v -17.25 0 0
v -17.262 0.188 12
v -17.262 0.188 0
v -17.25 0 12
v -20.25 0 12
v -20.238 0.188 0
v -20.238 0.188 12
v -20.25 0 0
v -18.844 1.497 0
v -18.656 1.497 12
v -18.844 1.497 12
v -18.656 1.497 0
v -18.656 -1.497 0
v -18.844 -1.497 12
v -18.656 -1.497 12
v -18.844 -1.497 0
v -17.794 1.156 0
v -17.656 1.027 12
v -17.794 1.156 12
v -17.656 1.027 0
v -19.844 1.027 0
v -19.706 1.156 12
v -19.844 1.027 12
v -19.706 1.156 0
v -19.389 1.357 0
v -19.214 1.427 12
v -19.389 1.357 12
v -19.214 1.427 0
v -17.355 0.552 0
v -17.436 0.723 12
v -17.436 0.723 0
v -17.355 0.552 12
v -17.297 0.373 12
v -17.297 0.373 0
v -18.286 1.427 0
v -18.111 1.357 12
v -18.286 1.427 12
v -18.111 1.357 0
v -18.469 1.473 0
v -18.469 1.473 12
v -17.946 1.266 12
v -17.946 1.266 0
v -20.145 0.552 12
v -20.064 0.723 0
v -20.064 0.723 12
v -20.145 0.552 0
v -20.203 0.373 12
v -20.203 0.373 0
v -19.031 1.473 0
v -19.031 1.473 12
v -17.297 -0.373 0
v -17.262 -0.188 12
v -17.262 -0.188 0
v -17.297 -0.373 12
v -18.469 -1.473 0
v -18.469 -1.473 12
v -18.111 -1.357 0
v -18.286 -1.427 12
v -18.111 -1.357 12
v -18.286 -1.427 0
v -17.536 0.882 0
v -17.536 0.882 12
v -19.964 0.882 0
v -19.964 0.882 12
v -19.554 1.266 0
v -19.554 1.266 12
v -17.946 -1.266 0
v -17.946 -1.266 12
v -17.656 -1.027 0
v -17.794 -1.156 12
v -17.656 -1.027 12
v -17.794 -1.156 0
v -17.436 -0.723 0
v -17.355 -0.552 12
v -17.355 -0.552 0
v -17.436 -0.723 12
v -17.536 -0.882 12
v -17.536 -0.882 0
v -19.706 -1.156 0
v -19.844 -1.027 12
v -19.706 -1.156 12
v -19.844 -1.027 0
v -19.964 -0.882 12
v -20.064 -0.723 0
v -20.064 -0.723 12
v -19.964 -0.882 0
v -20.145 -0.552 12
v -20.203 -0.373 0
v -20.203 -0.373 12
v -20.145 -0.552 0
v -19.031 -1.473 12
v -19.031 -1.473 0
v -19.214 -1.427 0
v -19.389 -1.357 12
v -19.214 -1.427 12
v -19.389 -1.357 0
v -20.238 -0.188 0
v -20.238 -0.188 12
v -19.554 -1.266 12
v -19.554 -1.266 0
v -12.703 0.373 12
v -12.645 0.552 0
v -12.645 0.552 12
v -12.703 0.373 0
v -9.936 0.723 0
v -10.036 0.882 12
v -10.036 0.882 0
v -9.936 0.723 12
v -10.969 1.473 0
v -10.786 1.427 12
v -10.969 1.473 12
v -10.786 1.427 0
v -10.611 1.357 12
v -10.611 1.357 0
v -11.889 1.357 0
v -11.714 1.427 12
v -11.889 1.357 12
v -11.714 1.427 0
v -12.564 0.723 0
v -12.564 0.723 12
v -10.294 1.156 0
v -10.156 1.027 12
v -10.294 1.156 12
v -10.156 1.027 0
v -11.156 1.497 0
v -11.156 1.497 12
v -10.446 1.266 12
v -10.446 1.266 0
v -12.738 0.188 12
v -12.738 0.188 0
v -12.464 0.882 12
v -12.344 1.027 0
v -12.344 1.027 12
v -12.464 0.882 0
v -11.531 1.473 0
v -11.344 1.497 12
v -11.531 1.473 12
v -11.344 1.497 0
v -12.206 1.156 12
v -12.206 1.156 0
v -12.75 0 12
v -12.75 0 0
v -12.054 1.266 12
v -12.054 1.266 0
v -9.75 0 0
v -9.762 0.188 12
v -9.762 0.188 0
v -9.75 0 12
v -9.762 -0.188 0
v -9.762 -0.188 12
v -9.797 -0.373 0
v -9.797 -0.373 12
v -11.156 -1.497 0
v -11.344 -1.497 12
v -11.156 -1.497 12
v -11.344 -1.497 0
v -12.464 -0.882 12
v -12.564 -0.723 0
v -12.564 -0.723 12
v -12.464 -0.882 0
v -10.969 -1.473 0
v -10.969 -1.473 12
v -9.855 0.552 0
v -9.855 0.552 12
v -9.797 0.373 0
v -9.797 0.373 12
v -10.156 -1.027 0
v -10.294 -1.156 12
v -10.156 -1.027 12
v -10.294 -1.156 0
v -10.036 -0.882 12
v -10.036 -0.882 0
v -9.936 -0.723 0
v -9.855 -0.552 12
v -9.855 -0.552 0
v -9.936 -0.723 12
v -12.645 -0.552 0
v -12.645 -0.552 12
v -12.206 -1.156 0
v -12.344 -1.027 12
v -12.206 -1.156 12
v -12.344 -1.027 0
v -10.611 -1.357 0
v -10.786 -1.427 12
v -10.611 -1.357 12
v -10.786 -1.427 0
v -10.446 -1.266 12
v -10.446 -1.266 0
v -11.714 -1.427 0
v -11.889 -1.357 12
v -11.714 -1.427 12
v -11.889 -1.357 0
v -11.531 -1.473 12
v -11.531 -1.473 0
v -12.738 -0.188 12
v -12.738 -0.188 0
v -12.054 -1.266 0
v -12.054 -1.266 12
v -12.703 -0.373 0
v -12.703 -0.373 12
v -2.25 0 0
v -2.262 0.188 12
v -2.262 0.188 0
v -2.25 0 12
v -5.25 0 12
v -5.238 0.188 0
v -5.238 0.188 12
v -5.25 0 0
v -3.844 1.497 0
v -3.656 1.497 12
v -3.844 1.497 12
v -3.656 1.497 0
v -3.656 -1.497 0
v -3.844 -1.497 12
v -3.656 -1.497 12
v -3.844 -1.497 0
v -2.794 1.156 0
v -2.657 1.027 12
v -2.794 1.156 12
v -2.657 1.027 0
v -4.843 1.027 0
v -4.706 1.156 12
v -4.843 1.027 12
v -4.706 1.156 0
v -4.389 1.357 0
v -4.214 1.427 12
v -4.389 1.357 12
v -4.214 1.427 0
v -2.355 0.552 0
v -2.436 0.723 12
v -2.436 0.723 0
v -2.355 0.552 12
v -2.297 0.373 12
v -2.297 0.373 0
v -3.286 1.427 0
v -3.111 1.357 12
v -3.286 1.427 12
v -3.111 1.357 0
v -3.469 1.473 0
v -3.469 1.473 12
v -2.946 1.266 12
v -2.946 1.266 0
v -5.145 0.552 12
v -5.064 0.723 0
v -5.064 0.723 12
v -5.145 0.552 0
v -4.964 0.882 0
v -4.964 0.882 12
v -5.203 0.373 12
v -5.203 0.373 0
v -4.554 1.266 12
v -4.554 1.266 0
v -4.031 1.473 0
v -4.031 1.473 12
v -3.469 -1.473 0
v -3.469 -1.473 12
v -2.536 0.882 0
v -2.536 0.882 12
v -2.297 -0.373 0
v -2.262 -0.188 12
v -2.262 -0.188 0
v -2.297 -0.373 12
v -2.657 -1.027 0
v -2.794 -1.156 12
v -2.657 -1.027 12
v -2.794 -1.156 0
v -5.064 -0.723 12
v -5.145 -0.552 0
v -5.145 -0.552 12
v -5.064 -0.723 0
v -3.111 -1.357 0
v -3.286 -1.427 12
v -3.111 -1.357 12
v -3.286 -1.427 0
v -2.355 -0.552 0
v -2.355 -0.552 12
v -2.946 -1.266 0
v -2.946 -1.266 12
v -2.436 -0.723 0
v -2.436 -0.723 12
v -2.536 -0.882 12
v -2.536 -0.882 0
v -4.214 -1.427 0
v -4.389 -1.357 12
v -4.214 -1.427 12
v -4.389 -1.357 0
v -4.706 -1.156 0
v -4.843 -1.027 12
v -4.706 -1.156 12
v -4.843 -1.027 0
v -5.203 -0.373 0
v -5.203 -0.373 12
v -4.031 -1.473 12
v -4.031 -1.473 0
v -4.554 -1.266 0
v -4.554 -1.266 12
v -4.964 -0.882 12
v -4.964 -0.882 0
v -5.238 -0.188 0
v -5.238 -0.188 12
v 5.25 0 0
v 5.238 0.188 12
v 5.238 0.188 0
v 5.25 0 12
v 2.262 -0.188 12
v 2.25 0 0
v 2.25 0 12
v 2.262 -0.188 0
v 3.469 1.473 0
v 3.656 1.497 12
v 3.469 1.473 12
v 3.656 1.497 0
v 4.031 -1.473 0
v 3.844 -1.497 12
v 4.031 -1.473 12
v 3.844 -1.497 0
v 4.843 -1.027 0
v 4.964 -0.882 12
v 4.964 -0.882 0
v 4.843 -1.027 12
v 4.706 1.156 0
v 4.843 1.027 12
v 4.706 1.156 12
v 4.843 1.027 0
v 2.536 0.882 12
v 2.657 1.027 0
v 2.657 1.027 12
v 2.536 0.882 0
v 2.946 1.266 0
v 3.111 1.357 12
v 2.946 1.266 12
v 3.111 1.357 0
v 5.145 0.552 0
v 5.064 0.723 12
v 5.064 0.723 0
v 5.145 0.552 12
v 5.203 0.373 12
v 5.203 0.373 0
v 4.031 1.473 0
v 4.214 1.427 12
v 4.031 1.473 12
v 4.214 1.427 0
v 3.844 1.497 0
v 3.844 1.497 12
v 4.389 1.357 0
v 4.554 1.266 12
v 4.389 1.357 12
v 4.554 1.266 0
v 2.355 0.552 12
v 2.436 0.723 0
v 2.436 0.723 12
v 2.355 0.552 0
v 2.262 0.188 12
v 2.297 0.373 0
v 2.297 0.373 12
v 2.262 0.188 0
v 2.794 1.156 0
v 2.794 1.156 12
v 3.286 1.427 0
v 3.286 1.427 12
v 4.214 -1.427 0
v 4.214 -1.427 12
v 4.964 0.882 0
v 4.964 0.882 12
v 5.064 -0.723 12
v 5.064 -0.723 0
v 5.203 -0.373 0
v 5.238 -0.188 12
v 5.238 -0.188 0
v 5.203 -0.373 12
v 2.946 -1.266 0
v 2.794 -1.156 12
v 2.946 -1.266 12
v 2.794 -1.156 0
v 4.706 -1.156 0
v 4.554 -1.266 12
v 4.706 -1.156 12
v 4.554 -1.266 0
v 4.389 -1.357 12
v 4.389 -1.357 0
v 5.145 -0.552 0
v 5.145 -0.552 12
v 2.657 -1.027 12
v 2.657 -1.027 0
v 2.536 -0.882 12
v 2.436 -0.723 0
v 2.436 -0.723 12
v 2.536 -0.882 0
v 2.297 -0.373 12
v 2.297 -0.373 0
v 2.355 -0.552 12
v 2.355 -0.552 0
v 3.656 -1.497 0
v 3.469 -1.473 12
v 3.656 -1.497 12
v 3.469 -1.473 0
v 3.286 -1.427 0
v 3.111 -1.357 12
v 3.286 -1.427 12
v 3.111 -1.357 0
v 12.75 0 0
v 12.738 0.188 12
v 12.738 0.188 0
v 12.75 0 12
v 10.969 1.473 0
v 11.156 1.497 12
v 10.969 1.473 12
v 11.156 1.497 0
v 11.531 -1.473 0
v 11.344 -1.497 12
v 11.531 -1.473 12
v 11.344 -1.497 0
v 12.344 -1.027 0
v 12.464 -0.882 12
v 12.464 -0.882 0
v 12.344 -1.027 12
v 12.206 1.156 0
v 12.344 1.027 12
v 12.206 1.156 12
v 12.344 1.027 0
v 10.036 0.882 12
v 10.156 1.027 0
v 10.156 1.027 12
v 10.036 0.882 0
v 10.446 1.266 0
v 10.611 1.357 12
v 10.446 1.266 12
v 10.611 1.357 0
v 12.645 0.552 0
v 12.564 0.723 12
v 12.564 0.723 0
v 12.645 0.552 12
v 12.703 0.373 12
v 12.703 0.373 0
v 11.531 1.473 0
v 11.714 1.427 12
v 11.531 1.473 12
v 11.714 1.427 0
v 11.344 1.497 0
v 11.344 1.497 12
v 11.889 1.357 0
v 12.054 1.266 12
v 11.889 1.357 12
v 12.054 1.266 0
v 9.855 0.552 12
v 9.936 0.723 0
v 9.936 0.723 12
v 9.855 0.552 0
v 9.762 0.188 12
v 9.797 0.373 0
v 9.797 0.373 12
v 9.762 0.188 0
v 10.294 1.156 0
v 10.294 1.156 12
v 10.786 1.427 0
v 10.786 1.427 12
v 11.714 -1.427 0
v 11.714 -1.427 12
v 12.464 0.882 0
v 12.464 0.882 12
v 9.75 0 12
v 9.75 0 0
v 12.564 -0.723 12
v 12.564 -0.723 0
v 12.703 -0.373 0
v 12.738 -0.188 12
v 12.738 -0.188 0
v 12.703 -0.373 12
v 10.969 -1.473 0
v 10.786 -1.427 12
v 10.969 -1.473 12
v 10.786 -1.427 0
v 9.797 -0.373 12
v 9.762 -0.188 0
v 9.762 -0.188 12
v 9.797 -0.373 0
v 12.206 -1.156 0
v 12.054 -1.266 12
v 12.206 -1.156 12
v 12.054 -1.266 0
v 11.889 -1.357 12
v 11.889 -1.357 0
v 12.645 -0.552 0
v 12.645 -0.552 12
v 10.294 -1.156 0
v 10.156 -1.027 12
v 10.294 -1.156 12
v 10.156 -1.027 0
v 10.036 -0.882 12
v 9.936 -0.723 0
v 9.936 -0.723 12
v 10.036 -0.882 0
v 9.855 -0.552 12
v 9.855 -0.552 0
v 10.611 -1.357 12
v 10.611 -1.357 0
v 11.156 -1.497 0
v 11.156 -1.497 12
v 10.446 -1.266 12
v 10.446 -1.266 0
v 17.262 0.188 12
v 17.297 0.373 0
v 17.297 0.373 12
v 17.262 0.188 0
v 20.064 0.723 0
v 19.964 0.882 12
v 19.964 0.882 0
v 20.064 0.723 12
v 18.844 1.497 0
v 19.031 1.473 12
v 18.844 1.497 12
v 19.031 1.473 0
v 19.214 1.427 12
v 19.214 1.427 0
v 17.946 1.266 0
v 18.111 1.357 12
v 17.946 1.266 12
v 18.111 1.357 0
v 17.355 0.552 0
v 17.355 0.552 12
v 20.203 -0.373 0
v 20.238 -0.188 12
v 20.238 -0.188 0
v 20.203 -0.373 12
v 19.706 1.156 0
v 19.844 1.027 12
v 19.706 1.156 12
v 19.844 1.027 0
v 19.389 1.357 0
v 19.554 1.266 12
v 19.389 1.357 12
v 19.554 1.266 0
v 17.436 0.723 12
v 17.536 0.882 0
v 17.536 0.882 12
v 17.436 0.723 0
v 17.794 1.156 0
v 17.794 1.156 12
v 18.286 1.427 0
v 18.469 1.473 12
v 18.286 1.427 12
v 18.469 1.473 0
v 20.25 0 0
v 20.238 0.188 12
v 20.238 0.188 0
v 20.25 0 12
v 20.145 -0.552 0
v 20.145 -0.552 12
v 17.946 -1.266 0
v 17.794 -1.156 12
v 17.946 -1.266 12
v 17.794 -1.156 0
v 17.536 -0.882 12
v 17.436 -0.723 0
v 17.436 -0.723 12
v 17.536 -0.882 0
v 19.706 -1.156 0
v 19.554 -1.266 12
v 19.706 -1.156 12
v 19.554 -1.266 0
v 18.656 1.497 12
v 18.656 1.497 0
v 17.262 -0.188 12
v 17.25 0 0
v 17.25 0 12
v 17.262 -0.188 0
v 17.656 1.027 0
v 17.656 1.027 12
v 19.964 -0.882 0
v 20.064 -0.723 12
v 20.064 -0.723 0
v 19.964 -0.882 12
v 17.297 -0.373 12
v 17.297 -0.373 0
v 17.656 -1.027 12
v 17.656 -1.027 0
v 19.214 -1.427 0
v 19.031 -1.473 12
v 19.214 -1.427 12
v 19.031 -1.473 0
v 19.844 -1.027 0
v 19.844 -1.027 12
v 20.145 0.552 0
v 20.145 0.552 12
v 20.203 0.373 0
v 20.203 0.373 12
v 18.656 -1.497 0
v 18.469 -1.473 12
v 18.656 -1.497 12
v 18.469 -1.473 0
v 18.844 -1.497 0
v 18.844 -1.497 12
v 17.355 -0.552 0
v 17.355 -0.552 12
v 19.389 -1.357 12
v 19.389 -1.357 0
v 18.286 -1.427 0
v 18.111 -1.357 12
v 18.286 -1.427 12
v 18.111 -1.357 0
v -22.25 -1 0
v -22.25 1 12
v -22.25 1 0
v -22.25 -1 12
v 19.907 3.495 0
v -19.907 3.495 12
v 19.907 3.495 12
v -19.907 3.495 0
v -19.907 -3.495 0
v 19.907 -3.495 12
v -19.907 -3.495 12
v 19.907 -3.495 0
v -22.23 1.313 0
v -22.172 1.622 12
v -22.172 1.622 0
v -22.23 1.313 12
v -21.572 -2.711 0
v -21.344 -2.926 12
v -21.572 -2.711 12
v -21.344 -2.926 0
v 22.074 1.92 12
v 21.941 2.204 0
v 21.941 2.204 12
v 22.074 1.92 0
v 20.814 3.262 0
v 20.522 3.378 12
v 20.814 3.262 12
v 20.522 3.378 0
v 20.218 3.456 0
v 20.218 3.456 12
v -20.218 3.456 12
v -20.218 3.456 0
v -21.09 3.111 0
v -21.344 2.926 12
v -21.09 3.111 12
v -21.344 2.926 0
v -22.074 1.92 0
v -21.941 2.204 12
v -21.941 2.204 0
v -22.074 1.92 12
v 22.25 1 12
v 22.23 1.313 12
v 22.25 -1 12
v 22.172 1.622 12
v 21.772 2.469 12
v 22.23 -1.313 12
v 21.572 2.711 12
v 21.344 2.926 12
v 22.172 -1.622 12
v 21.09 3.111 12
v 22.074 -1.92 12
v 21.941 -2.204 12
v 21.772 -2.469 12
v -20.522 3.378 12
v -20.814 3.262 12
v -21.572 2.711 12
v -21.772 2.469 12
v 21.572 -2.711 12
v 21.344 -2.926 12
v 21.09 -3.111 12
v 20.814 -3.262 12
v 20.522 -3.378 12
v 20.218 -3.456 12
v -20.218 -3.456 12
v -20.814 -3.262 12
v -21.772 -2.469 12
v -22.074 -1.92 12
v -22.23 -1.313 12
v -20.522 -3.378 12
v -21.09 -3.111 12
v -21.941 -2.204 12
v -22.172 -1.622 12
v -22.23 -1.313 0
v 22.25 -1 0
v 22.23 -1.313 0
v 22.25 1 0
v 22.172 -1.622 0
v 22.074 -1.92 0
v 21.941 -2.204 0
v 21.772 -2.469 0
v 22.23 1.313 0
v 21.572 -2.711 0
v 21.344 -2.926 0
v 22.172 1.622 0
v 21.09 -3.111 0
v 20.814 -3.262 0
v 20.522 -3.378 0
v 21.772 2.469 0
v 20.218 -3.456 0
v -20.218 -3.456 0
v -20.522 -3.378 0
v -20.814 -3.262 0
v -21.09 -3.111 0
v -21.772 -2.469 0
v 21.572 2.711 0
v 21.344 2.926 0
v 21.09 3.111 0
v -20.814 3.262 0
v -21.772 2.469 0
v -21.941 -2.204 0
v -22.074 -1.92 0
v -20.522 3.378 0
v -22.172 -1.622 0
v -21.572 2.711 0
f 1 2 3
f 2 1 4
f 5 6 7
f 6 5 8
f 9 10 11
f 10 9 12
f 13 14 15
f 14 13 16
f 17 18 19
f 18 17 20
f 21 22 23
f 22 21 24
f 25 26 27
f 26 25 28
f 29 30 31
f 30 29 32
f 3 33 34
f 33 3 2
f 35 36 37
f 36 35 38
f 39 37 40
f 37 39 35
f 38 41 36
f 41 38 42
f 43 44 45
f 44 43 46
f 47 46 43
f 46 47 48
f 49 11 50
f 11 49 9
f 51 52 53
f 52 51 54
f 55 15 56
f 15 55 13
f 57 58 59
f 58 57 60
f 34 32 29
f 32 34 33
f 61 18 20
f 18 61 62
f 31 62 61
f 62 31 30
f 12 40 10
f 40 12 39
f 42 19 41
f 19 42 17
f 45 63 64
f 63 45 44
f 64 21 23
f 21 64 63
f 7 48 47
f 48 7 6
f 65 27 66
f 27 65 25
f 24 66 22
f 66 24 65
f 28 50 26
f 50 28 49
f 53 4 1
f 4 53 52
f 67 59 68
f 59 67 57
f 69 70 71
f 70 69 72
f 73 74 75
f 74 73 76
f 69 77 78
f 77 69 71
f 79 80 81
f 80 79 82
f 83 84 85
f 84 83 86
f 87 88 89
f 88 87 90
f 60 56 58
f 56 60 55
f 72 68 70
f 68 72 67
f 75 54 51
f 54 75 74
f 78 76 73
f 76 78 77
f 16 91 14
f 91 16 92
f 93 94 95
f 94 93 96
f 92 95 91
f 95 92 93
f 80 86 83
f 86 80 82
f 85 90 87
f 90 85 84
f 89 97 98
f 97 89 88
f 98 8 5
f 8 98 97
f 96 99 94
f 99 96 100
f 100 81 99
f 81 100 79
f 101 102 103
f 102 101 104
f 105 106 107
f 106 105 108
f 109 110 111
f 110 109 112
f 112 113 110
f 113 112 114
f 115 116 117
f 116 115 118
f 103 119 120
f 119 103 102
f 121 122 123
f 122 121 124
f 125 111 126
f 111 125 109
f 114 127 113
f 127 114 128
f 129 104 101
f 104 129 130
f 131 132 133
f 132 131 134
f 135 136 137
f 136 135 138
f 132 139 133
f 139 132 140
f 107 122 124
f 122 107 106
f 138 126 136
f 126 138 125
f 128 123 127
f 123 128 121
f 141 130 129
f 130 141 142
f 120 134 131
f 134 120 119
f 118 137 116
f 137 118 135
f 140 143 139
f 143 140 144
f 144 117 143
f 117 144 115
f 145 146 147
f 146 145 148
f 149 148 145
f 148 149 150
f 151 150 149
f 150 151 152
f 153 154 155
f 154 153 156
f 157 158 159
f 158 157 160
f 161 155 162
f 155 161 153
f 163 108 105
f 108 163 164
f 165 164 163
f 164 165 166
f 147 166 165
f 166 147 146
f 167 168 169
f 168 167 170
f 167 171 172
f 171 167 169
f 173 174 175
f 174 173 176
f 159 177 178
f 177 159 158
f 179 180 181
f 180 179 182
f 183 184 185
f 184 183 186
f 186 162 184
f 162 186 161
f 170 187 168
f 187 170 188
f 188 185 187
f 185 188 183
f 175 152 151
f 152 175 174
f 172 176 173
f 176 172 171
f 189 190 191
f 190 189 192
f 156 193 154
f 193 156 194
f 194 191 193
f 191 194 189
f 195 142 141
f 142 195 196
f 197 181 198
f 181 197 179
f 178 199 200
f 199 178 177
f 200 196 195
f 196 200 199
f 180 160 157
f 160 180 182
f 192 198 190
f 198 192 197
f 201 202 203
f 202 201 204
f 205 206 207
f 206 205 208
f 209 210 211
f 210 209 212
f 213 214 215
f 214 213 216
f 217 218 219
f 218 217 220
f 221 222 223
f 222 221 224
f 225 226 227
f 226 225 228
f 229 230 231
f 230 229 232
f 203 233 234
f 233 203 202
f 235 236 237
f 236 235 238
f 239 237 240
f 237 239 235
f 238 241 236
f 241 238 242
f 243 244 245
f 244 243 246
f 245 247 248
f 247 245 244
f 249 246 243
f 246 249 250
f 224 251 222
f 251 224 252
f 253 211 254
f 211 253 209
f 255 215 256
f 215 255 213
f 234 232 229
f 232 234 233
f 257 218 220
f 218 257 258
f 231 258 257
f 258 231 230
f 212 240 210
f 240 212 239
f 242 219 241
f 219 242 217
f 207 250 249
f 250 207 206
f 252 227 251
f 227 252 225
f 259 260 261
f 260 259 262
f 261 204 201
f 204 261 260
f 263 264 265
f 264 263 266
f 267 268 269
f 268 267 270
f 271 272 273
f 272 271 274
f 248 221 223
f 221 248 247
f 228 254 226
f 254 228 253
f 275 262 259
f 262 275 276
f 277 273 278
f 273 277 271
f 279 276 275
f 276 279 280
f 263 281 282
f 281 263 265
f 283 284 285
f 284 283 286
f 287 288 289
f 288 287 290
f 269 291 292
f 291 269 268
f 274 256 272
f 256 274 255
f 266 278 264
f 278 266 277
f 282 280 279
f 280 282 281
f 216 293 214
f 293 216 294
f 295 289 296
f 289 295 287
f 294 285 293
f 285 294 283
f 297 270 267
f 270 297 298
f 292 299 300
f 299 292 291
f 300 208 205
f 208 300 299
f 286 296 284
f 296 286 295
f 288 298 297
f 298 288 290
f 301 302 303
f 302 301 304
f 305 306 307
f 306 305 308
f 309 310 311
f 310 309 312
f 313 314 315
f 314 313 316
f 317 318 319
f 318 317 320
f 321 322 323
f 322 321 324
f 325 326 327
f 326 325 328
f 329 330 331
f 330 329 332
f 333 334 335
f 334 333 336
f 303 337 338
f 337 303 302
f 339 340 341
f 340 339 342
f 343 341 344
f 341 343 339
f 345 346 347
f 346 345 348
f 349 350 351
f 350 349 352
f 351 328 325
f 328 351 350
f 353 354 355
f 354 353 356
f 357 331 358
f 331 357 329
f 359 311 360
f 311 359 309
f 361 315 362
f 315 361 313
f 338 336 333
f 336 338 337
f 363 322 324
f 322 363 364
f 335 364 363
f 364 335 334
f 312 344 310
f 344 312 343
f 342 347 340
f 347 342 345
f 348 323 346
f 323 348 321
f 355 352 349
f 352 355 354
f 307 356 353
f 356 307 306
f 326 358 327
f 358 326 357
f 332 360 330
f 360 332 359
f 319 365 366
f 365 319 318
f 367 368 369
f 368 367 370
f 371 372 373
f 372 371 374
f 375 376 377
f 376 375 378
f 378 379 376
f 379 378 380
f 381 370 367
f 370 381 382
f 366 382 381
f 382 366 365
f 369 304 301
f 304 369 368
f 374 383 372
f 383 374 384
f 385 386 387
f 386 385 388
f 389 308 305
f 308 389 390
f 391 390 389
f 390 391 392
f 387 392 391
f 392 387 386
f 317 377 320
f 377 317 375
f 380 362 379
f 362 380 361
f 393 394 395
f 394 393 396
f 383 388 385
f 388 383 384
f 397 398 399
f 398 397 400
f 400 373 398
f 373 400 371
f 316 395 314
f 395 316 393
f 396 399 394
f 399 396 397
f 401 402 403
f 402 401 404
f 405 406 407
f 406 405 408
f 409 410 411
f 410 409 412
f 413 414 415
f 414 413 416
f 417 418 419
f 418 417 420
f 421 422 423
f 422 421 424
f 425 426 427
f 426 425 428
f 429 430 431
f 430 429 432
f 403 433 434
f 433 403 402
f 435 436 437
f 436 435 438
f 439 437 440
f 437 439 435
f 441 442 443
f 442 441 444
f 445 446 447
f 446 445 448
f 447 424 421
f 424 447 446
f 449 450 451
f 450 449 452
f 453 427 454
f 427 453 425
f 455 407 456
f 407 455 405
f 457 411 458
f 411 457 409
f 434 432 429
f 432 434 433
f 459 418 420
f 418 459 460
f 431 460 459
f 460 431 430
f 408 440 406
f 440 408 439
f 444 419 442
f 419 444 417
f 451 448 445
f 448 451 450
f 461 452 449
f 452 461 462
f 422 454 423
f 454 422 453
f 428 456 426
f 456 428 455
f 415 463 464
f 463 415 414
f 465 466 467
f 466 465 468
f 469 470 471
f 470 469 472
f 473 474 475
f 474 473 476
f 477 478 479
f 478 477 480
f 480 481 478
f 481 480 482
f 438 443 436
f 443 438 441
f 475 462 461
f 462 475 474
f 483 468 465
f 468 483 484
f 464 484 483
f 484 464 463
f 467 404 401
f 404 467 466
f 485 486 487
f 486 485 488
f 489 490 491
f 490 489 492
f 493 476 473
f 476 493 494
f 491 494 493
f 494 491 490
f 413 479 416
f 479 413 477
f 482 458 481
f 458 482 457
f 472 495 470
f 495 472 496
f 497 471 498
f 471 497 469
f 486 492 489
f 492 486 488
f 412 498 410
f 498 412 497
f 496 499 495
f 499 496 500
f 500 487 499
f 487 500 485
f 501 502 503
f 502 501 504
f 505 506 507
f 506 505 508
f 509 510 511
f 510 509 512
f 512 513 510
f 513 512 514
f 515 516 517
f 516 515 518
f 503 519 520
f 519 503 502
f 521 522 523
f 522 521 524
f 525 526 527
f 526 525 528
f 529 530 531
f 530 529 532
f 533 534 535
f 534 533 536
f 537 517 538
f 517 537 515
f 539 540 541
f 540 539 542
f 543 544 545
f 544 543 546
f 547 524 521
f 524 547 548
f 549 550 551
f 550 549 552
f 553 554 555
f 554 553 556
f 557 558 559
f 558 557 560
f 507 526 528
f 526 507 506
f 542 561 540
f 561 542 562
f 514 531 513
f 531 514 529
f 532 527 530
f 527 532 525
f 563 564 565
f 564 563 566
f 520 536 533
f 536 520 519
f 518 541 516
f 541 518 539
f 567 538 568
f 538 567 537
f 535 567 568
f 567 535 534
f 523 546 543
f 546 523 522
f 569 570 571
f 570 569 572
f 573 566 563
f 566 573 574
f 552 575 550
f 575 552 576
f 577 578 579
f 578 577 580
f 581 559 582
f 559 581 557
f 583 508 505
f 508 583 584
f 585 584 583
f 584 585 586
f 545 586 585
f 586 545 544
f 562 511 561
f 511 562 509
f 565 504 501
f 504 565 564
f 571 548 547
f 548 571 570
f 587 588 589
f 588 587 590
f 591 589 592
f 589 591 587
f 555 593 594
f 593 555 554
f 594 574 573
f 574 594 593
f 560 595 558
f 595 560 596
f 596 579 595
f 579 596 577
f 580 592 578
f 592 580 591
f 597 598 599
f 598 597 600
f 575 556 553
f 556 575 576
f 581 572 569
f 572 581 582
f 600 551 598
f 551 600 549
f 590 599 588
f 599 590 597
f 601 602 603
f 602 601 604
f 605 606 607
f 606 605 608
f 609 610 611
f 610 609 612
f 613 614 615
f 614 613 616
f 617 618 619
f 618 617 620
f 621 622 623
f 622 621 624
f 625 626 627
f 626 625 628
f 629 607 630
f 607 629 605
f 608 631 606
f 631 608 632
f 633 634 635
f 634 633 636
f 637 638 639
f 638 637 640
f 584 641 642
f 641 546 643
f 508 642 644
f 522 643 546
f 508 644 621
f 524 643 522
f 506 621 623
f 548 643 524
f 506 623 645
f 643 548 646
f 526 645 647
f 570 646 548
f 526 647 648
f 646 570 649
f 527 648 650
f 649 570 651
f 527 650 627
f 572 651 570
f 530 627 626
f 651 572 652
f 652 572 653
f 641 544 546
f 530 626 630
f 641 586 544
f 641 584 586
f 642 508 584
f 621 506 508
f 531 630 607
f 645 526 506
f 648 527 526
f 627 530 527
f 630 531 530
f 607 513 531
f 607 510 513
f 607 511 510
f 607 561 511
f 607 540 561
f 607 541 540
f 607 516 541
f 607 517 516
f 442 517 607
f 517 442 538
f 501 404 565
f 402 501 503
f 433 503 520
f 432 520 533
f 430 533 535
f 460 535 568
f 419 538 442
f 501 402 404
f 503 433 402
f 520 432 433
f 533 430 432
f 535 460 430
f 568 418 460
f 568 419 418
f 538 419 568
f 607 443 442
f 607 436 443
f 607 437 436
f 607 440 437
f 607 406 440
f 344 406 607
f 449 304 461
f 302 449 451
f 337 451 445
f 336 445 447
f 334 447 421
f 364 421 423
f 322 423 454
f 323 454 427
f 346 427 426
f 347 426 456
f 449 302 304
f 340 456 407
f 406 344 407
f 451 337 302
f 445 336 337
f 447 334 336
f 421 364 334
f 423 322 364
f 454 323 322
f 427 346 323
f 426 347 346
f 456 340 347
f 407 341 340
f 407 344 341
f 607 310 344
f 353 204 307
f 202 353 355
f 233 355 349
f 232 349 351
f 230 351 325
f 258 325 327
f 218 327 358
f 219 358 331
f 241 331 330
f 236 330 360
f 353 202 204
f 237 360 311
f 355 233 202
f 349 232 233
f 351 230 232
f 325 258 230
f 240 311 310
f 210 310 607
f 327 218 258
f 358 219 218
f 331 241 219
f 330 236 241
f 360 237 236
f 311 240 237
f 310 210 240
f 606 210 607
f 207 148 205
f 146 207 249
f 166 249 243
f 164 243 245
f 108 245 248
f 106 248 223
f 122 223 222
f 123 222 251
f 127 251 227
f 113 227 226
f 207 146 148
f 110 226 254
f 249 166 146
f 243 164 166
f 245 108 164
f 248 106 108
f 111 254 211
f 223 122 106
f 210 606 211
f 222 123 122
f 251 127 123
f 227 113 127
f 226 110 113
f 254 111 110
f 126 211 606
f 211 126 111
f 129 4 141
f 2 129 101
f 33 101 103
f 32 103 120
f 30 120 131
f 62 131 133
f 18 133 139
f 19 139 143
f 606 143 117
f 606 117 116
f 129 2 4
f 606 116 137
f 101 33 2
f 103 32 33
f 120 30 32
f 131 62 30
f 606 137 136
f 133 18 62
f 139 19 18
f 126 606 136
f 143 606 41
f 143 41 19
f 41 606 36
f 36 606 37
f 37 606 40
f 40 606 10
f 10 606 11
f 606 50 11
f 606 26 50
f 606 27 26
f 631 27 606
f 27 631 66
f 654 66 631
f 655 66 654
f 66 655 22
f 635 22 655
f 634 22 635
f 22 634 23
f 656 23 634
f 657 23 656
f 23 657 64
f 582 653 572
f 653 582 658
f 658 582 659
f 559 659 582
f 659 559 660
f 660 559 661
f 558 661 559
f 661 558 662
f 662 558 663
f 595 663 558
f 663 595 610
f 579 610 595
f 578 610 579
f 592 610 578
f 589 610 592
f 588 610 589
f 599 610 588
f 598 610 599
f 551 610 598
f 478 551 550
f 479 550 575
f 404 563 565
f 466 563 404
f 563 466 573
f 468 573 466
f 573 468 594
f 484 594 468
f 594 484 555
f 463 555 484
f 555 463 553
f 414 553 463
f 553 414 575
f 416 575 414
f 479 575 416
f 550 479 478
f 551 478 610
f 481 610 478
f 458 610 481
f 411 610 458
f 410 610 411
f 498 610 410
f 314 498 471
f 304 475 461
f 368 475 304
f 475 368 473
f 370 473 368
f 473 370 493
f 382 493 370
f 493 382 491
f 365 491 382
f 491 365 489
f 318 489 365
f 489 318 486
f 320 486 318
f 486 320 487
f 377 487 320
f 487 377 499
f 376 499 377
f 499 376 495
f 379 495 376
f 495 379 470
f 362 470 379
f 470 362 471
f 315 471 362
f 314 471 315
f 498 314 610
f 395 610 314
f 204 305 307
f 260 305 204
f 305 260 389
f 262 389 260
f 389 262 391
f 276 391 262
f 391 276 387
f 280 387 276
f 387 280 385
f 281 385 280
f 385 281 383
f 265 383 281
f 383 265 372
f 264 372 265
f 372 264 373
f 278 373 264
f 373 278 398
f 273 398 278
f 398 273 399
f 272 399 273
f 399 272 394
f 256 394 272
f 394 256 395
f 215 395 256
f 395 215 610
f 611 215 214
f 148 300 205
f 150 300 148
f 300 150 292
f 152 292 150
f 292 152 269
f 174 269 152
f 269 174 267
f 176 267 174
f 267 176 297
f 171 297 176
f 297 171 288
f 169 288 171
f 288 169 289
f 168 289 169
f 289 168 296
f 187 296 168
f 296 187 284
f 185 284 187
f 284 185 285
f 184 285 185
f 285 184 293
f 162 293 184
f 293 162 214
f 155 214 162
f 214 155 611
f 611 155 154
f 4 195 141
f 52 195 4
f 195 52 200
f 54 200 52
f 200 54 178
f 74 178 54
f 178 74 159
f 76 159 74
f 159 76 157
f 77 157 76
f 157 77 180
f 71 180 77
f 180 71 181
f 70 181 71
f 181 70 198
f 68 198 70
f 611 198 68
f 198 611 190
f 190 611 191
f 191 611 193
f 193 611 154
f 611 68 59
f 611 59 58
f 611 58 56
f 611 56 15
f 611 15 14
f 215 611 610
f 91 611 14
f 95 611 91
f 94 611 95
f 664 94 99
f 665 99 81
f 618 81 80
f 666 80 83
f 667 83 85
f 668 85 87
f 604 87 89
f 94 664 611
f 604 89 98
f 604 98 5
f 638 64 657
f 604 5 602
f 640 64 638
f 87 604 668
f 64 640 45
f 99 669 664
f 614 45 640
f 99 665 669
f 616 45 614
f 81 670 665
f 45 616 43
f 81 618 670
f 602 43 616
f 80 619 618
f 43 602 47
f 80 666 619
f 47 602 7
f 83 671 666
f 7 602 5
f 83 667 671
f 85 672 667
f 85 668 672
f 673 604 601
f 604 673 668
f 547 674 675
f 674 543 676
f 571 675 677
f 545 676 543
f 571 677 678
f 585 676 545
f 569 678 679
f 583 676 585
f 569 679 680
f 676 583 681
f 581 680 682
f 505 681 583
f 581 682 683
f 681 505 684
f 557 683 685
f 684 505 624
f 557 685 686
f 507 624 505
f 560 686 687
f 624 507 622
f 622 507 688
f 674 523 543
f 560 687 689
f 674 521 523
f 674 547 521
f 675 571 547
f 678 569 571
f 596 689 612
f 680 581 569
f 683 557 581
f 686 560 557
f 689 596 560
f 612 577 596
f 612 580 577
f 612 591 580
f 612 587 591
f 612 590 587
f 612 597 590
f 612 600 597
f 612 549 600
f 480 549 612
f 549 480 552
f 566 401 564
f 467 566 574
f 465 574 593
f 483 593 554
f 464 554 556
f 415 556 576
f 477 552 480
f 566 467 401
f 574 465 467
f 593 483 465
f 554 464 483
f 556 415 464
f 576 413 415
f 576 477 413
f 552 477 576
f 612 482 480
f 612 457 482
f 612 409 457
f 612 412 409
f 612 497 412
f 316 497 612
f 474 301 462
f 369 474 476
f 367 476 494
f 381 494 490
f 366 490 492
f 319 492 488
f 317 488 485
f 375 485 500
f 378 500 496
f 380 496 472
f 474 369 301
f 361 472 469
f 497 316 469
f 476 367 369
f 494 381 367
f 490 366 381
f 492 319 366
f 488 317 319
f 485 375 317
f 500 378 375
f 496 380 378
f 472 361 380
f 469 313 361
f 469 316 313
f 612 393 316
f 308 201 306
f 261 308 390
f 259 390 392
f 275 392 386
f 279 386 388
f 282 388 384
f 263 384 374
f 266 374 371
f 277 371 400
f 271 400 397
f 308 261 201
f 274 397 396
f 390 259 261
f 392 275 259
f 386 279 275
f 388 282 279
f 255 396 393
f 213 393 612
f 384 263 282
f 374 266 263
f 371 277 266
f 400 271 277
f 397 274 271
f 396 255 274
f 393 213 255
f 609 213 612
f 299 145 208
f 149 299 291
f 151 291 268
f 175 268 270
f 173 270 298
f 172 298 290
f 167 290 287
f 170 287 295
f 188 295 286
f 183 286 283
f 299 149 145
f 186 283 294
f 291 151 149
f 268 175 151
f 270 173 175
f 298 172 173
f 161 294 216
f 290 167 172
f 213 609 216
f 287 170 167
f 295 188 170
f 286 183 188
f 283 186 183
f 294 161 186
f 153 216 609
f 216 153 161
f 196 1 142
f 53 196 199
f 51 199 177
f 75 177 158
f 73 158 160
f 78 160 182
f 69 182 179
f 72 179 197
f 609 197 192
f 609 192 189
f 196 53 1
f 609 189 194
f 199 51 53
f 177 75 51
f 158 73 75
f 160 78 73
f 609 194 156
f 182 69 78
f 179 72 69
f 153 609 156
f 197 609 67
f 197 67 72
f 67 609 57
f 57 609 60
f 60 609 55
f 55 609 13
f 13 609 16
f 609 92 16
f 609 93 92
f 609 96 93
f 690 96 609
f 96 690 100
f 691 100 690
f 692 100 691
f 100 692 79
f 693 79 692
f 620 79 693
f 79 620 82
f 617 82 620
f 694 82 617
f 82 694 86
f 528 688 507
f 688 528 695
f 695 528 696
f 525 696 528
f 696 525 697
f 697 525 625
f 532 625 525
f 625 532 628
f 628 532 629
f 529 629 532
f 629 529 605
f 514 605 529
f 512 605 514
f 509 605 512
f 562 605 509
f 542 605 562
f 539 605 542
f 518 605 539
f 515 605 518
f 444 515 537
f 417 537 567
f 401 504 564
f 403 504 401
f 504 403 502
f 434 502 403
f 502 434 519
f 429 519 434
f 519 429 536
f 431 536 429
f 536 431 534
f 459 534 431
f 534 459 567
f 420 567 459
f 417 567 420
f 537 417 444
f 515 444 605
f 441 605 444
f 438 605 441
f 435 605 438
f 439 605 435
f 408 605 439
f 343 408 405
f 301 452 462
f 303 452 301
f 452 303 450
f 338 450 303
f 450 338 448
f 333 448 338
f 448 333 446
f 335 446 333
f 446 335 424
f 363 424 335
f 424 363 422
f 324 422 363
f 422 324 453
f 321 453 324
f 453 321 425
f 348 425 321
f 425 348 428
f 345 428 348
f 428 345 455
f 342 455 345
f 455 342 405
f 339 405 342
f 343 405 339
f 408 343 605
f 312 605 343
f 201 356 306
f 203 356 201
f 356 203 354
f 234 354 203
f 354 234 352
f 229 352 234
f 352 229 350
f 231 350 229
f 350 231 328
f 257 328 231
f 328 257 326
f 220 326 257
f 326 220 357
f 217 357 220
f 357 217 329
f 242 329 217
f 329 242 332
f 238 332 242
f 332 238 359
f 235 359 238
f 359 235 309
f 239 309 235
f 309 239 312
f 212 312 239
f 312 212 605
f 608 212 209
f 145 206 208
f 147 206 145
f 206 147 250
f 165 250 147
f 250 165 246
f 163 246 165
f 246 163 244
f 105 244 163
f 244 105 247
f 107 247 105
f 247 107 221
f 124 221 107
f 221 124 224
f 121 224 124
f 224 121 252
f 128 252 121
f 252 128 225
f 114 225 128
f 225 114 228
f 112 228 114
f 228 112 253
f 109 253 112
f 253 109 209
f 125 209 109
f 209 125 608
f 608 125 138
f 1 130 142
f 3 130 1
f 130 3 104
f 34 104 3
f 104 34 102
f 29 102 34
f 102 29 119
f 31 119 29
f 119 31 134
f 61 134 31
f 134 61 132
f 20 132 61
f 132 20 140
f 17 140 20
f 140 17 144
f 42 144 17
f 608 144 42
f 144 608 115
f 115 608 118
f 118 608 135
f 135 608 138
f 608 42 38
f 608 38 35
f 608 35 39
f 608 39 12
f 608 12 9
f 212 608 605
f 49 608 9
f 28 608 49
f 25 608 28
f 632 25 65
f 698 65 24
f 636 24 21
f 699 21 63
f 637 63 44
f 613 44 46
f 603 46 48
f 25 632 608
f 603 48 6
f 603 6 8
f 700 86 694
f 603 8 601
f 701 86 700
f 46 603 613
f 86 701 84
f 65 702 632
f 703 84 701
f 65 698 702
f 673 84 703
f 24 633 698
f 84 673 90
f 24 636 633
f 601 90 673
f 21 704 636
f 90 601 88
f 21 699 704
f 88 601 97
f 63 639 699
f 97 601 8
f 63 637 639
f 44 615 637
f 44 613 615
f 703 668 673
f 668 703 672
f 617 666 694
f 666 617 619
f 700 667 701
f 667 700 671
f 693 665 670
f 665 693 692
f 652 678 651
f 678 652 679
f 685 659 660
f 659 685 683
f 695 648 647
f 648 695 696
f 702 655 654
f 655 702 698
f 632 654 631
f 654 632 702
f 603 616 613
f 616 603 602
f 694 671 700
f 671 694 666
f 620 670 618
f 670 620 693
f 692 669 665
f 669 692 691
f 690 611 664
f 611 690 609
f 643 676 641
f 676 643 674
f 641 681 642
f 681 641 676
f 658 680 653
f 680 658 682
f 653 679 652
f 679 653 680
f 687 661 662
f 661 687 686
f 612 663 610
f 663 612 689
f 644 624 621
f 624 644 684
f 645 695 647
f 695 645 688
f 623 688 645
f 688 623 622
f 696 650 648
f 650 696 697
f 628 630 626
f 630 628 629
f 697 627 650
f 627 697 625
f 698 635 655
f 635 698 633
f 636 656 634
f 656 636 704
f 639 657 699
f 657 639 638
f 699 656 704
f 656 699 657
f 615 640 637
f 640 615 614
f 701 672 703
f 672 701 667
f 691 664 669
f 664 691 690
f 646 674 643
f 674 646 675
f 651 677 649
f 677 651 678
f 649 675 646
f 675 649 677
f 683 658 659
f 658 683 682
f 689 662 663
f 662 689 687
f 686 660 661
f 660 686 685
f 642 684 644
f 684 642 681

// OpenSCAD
$fn = 50;


difference() {
	union() {
		translate(v = [0, 0, 0]) {
			rotate(a = [0, 0, 0]) {
				hull() {
					translate(v = [-19.7500000000, 1.0000000000, 0]) {
						rotate(a = [0, 0, 0]) {
							translate(v = [0, 0, 0]) {
								rotate(a = [0, 0, 0]) {
									cylinder(h = 12, r = 2.5000000000);
								}
							}
						}
					}
					translate(v = [19.7500000000, 1.0000000000, 0]) {
						rotate(a = [0, 0, 0]) {
							translate(v = [0, 0, 0]) {
								rotate(a = [0, 0, 0]) {
									cylinder(h = 12, r = 2.5000000000);
								}
							}
						}
					}
					translate(v = [-19.7500000000, -1.0000000000, 0]) {
						rotate(a = [0, 0, 0]) {
							translate(v = [0, 0, 0]) {
								rotate(a = [0, 0, 0]) {
									cylinder(h = 12, r = 2.5000000000);
								}
							}
						}
					}
					translate(v = [19.7500000000, -1.0000000000, 0]) {
						rotate(a = [0, 0, 0]) {
							translate(v = [0, 0, 0]) {
								rotate(a = [0, 0, 0]) {
									cylinder(h = 12, r = 2.5000000000);
								}
							}
						}
					}
				}
			}
		}
	}
	union() {
		translate(v = [-18.7500000000, 0.0000000000, 0]) {
			rotate(a = [0, 0, 0]) {
				translate(v = [0, 0, -50]) {
					rotate(a = [0, 0, 0]) {
						cylinder(h = 100, r = 1.5000000000);
					}
				}
			}
		}
		translate(v = [-11.2500000000, 0.0000000000, 0]) {
			rotate(a = [0, 0, 0]) {
				translate(v = [0, 0, -50]) {
					rotate(a = [0, 0, 0]) {
						cylinder(h = 100, r = 1.5000000000);
					}
				}
			}
		}
		translate(v = [-3.7500000000, 0.0000000000, 0]) {
			rotate(a = [0, 0, 0]) {
				translate(v = [0, 0, -50]) {
					rotate(a = [0, 0, 0]) {
						cylinder(h = 100, r = 1.5000000000);
					}
				}
			}
		}
		translate(v = [3.7500000000, 0.0000000000, 0]) {
			rotate(a = [0, 0, 0]) {
				translate(v = [0, 0, -50]) {
					rotate(a = [0, 0, 0]) {
						cylinder(h = 100, r = 1.5000000000);
					}
				}
			}
		}
		translate(v = [11.2500000000, 0.0000000000, 0]) {
			rotate(a = [0, 0, 0]) {
				translate(v = [0, 0, -50]) {
					rotate(a = [0, 0, 0]) {
						cylinder(h = 100, r = 1.5000000000);
					}
				}
			}
		}
		translate(v = [18.7500000000, 0.0000000000, 0]) {
			rotate(a = [0, 0, 0]) {
				translate(v = [0, 0, -50]) {
					rotate(a = [0, 0, 0]) {
						cylinder(h = 100, r = 1.5000000000);
					}
				}
			}
		}
	}
}
